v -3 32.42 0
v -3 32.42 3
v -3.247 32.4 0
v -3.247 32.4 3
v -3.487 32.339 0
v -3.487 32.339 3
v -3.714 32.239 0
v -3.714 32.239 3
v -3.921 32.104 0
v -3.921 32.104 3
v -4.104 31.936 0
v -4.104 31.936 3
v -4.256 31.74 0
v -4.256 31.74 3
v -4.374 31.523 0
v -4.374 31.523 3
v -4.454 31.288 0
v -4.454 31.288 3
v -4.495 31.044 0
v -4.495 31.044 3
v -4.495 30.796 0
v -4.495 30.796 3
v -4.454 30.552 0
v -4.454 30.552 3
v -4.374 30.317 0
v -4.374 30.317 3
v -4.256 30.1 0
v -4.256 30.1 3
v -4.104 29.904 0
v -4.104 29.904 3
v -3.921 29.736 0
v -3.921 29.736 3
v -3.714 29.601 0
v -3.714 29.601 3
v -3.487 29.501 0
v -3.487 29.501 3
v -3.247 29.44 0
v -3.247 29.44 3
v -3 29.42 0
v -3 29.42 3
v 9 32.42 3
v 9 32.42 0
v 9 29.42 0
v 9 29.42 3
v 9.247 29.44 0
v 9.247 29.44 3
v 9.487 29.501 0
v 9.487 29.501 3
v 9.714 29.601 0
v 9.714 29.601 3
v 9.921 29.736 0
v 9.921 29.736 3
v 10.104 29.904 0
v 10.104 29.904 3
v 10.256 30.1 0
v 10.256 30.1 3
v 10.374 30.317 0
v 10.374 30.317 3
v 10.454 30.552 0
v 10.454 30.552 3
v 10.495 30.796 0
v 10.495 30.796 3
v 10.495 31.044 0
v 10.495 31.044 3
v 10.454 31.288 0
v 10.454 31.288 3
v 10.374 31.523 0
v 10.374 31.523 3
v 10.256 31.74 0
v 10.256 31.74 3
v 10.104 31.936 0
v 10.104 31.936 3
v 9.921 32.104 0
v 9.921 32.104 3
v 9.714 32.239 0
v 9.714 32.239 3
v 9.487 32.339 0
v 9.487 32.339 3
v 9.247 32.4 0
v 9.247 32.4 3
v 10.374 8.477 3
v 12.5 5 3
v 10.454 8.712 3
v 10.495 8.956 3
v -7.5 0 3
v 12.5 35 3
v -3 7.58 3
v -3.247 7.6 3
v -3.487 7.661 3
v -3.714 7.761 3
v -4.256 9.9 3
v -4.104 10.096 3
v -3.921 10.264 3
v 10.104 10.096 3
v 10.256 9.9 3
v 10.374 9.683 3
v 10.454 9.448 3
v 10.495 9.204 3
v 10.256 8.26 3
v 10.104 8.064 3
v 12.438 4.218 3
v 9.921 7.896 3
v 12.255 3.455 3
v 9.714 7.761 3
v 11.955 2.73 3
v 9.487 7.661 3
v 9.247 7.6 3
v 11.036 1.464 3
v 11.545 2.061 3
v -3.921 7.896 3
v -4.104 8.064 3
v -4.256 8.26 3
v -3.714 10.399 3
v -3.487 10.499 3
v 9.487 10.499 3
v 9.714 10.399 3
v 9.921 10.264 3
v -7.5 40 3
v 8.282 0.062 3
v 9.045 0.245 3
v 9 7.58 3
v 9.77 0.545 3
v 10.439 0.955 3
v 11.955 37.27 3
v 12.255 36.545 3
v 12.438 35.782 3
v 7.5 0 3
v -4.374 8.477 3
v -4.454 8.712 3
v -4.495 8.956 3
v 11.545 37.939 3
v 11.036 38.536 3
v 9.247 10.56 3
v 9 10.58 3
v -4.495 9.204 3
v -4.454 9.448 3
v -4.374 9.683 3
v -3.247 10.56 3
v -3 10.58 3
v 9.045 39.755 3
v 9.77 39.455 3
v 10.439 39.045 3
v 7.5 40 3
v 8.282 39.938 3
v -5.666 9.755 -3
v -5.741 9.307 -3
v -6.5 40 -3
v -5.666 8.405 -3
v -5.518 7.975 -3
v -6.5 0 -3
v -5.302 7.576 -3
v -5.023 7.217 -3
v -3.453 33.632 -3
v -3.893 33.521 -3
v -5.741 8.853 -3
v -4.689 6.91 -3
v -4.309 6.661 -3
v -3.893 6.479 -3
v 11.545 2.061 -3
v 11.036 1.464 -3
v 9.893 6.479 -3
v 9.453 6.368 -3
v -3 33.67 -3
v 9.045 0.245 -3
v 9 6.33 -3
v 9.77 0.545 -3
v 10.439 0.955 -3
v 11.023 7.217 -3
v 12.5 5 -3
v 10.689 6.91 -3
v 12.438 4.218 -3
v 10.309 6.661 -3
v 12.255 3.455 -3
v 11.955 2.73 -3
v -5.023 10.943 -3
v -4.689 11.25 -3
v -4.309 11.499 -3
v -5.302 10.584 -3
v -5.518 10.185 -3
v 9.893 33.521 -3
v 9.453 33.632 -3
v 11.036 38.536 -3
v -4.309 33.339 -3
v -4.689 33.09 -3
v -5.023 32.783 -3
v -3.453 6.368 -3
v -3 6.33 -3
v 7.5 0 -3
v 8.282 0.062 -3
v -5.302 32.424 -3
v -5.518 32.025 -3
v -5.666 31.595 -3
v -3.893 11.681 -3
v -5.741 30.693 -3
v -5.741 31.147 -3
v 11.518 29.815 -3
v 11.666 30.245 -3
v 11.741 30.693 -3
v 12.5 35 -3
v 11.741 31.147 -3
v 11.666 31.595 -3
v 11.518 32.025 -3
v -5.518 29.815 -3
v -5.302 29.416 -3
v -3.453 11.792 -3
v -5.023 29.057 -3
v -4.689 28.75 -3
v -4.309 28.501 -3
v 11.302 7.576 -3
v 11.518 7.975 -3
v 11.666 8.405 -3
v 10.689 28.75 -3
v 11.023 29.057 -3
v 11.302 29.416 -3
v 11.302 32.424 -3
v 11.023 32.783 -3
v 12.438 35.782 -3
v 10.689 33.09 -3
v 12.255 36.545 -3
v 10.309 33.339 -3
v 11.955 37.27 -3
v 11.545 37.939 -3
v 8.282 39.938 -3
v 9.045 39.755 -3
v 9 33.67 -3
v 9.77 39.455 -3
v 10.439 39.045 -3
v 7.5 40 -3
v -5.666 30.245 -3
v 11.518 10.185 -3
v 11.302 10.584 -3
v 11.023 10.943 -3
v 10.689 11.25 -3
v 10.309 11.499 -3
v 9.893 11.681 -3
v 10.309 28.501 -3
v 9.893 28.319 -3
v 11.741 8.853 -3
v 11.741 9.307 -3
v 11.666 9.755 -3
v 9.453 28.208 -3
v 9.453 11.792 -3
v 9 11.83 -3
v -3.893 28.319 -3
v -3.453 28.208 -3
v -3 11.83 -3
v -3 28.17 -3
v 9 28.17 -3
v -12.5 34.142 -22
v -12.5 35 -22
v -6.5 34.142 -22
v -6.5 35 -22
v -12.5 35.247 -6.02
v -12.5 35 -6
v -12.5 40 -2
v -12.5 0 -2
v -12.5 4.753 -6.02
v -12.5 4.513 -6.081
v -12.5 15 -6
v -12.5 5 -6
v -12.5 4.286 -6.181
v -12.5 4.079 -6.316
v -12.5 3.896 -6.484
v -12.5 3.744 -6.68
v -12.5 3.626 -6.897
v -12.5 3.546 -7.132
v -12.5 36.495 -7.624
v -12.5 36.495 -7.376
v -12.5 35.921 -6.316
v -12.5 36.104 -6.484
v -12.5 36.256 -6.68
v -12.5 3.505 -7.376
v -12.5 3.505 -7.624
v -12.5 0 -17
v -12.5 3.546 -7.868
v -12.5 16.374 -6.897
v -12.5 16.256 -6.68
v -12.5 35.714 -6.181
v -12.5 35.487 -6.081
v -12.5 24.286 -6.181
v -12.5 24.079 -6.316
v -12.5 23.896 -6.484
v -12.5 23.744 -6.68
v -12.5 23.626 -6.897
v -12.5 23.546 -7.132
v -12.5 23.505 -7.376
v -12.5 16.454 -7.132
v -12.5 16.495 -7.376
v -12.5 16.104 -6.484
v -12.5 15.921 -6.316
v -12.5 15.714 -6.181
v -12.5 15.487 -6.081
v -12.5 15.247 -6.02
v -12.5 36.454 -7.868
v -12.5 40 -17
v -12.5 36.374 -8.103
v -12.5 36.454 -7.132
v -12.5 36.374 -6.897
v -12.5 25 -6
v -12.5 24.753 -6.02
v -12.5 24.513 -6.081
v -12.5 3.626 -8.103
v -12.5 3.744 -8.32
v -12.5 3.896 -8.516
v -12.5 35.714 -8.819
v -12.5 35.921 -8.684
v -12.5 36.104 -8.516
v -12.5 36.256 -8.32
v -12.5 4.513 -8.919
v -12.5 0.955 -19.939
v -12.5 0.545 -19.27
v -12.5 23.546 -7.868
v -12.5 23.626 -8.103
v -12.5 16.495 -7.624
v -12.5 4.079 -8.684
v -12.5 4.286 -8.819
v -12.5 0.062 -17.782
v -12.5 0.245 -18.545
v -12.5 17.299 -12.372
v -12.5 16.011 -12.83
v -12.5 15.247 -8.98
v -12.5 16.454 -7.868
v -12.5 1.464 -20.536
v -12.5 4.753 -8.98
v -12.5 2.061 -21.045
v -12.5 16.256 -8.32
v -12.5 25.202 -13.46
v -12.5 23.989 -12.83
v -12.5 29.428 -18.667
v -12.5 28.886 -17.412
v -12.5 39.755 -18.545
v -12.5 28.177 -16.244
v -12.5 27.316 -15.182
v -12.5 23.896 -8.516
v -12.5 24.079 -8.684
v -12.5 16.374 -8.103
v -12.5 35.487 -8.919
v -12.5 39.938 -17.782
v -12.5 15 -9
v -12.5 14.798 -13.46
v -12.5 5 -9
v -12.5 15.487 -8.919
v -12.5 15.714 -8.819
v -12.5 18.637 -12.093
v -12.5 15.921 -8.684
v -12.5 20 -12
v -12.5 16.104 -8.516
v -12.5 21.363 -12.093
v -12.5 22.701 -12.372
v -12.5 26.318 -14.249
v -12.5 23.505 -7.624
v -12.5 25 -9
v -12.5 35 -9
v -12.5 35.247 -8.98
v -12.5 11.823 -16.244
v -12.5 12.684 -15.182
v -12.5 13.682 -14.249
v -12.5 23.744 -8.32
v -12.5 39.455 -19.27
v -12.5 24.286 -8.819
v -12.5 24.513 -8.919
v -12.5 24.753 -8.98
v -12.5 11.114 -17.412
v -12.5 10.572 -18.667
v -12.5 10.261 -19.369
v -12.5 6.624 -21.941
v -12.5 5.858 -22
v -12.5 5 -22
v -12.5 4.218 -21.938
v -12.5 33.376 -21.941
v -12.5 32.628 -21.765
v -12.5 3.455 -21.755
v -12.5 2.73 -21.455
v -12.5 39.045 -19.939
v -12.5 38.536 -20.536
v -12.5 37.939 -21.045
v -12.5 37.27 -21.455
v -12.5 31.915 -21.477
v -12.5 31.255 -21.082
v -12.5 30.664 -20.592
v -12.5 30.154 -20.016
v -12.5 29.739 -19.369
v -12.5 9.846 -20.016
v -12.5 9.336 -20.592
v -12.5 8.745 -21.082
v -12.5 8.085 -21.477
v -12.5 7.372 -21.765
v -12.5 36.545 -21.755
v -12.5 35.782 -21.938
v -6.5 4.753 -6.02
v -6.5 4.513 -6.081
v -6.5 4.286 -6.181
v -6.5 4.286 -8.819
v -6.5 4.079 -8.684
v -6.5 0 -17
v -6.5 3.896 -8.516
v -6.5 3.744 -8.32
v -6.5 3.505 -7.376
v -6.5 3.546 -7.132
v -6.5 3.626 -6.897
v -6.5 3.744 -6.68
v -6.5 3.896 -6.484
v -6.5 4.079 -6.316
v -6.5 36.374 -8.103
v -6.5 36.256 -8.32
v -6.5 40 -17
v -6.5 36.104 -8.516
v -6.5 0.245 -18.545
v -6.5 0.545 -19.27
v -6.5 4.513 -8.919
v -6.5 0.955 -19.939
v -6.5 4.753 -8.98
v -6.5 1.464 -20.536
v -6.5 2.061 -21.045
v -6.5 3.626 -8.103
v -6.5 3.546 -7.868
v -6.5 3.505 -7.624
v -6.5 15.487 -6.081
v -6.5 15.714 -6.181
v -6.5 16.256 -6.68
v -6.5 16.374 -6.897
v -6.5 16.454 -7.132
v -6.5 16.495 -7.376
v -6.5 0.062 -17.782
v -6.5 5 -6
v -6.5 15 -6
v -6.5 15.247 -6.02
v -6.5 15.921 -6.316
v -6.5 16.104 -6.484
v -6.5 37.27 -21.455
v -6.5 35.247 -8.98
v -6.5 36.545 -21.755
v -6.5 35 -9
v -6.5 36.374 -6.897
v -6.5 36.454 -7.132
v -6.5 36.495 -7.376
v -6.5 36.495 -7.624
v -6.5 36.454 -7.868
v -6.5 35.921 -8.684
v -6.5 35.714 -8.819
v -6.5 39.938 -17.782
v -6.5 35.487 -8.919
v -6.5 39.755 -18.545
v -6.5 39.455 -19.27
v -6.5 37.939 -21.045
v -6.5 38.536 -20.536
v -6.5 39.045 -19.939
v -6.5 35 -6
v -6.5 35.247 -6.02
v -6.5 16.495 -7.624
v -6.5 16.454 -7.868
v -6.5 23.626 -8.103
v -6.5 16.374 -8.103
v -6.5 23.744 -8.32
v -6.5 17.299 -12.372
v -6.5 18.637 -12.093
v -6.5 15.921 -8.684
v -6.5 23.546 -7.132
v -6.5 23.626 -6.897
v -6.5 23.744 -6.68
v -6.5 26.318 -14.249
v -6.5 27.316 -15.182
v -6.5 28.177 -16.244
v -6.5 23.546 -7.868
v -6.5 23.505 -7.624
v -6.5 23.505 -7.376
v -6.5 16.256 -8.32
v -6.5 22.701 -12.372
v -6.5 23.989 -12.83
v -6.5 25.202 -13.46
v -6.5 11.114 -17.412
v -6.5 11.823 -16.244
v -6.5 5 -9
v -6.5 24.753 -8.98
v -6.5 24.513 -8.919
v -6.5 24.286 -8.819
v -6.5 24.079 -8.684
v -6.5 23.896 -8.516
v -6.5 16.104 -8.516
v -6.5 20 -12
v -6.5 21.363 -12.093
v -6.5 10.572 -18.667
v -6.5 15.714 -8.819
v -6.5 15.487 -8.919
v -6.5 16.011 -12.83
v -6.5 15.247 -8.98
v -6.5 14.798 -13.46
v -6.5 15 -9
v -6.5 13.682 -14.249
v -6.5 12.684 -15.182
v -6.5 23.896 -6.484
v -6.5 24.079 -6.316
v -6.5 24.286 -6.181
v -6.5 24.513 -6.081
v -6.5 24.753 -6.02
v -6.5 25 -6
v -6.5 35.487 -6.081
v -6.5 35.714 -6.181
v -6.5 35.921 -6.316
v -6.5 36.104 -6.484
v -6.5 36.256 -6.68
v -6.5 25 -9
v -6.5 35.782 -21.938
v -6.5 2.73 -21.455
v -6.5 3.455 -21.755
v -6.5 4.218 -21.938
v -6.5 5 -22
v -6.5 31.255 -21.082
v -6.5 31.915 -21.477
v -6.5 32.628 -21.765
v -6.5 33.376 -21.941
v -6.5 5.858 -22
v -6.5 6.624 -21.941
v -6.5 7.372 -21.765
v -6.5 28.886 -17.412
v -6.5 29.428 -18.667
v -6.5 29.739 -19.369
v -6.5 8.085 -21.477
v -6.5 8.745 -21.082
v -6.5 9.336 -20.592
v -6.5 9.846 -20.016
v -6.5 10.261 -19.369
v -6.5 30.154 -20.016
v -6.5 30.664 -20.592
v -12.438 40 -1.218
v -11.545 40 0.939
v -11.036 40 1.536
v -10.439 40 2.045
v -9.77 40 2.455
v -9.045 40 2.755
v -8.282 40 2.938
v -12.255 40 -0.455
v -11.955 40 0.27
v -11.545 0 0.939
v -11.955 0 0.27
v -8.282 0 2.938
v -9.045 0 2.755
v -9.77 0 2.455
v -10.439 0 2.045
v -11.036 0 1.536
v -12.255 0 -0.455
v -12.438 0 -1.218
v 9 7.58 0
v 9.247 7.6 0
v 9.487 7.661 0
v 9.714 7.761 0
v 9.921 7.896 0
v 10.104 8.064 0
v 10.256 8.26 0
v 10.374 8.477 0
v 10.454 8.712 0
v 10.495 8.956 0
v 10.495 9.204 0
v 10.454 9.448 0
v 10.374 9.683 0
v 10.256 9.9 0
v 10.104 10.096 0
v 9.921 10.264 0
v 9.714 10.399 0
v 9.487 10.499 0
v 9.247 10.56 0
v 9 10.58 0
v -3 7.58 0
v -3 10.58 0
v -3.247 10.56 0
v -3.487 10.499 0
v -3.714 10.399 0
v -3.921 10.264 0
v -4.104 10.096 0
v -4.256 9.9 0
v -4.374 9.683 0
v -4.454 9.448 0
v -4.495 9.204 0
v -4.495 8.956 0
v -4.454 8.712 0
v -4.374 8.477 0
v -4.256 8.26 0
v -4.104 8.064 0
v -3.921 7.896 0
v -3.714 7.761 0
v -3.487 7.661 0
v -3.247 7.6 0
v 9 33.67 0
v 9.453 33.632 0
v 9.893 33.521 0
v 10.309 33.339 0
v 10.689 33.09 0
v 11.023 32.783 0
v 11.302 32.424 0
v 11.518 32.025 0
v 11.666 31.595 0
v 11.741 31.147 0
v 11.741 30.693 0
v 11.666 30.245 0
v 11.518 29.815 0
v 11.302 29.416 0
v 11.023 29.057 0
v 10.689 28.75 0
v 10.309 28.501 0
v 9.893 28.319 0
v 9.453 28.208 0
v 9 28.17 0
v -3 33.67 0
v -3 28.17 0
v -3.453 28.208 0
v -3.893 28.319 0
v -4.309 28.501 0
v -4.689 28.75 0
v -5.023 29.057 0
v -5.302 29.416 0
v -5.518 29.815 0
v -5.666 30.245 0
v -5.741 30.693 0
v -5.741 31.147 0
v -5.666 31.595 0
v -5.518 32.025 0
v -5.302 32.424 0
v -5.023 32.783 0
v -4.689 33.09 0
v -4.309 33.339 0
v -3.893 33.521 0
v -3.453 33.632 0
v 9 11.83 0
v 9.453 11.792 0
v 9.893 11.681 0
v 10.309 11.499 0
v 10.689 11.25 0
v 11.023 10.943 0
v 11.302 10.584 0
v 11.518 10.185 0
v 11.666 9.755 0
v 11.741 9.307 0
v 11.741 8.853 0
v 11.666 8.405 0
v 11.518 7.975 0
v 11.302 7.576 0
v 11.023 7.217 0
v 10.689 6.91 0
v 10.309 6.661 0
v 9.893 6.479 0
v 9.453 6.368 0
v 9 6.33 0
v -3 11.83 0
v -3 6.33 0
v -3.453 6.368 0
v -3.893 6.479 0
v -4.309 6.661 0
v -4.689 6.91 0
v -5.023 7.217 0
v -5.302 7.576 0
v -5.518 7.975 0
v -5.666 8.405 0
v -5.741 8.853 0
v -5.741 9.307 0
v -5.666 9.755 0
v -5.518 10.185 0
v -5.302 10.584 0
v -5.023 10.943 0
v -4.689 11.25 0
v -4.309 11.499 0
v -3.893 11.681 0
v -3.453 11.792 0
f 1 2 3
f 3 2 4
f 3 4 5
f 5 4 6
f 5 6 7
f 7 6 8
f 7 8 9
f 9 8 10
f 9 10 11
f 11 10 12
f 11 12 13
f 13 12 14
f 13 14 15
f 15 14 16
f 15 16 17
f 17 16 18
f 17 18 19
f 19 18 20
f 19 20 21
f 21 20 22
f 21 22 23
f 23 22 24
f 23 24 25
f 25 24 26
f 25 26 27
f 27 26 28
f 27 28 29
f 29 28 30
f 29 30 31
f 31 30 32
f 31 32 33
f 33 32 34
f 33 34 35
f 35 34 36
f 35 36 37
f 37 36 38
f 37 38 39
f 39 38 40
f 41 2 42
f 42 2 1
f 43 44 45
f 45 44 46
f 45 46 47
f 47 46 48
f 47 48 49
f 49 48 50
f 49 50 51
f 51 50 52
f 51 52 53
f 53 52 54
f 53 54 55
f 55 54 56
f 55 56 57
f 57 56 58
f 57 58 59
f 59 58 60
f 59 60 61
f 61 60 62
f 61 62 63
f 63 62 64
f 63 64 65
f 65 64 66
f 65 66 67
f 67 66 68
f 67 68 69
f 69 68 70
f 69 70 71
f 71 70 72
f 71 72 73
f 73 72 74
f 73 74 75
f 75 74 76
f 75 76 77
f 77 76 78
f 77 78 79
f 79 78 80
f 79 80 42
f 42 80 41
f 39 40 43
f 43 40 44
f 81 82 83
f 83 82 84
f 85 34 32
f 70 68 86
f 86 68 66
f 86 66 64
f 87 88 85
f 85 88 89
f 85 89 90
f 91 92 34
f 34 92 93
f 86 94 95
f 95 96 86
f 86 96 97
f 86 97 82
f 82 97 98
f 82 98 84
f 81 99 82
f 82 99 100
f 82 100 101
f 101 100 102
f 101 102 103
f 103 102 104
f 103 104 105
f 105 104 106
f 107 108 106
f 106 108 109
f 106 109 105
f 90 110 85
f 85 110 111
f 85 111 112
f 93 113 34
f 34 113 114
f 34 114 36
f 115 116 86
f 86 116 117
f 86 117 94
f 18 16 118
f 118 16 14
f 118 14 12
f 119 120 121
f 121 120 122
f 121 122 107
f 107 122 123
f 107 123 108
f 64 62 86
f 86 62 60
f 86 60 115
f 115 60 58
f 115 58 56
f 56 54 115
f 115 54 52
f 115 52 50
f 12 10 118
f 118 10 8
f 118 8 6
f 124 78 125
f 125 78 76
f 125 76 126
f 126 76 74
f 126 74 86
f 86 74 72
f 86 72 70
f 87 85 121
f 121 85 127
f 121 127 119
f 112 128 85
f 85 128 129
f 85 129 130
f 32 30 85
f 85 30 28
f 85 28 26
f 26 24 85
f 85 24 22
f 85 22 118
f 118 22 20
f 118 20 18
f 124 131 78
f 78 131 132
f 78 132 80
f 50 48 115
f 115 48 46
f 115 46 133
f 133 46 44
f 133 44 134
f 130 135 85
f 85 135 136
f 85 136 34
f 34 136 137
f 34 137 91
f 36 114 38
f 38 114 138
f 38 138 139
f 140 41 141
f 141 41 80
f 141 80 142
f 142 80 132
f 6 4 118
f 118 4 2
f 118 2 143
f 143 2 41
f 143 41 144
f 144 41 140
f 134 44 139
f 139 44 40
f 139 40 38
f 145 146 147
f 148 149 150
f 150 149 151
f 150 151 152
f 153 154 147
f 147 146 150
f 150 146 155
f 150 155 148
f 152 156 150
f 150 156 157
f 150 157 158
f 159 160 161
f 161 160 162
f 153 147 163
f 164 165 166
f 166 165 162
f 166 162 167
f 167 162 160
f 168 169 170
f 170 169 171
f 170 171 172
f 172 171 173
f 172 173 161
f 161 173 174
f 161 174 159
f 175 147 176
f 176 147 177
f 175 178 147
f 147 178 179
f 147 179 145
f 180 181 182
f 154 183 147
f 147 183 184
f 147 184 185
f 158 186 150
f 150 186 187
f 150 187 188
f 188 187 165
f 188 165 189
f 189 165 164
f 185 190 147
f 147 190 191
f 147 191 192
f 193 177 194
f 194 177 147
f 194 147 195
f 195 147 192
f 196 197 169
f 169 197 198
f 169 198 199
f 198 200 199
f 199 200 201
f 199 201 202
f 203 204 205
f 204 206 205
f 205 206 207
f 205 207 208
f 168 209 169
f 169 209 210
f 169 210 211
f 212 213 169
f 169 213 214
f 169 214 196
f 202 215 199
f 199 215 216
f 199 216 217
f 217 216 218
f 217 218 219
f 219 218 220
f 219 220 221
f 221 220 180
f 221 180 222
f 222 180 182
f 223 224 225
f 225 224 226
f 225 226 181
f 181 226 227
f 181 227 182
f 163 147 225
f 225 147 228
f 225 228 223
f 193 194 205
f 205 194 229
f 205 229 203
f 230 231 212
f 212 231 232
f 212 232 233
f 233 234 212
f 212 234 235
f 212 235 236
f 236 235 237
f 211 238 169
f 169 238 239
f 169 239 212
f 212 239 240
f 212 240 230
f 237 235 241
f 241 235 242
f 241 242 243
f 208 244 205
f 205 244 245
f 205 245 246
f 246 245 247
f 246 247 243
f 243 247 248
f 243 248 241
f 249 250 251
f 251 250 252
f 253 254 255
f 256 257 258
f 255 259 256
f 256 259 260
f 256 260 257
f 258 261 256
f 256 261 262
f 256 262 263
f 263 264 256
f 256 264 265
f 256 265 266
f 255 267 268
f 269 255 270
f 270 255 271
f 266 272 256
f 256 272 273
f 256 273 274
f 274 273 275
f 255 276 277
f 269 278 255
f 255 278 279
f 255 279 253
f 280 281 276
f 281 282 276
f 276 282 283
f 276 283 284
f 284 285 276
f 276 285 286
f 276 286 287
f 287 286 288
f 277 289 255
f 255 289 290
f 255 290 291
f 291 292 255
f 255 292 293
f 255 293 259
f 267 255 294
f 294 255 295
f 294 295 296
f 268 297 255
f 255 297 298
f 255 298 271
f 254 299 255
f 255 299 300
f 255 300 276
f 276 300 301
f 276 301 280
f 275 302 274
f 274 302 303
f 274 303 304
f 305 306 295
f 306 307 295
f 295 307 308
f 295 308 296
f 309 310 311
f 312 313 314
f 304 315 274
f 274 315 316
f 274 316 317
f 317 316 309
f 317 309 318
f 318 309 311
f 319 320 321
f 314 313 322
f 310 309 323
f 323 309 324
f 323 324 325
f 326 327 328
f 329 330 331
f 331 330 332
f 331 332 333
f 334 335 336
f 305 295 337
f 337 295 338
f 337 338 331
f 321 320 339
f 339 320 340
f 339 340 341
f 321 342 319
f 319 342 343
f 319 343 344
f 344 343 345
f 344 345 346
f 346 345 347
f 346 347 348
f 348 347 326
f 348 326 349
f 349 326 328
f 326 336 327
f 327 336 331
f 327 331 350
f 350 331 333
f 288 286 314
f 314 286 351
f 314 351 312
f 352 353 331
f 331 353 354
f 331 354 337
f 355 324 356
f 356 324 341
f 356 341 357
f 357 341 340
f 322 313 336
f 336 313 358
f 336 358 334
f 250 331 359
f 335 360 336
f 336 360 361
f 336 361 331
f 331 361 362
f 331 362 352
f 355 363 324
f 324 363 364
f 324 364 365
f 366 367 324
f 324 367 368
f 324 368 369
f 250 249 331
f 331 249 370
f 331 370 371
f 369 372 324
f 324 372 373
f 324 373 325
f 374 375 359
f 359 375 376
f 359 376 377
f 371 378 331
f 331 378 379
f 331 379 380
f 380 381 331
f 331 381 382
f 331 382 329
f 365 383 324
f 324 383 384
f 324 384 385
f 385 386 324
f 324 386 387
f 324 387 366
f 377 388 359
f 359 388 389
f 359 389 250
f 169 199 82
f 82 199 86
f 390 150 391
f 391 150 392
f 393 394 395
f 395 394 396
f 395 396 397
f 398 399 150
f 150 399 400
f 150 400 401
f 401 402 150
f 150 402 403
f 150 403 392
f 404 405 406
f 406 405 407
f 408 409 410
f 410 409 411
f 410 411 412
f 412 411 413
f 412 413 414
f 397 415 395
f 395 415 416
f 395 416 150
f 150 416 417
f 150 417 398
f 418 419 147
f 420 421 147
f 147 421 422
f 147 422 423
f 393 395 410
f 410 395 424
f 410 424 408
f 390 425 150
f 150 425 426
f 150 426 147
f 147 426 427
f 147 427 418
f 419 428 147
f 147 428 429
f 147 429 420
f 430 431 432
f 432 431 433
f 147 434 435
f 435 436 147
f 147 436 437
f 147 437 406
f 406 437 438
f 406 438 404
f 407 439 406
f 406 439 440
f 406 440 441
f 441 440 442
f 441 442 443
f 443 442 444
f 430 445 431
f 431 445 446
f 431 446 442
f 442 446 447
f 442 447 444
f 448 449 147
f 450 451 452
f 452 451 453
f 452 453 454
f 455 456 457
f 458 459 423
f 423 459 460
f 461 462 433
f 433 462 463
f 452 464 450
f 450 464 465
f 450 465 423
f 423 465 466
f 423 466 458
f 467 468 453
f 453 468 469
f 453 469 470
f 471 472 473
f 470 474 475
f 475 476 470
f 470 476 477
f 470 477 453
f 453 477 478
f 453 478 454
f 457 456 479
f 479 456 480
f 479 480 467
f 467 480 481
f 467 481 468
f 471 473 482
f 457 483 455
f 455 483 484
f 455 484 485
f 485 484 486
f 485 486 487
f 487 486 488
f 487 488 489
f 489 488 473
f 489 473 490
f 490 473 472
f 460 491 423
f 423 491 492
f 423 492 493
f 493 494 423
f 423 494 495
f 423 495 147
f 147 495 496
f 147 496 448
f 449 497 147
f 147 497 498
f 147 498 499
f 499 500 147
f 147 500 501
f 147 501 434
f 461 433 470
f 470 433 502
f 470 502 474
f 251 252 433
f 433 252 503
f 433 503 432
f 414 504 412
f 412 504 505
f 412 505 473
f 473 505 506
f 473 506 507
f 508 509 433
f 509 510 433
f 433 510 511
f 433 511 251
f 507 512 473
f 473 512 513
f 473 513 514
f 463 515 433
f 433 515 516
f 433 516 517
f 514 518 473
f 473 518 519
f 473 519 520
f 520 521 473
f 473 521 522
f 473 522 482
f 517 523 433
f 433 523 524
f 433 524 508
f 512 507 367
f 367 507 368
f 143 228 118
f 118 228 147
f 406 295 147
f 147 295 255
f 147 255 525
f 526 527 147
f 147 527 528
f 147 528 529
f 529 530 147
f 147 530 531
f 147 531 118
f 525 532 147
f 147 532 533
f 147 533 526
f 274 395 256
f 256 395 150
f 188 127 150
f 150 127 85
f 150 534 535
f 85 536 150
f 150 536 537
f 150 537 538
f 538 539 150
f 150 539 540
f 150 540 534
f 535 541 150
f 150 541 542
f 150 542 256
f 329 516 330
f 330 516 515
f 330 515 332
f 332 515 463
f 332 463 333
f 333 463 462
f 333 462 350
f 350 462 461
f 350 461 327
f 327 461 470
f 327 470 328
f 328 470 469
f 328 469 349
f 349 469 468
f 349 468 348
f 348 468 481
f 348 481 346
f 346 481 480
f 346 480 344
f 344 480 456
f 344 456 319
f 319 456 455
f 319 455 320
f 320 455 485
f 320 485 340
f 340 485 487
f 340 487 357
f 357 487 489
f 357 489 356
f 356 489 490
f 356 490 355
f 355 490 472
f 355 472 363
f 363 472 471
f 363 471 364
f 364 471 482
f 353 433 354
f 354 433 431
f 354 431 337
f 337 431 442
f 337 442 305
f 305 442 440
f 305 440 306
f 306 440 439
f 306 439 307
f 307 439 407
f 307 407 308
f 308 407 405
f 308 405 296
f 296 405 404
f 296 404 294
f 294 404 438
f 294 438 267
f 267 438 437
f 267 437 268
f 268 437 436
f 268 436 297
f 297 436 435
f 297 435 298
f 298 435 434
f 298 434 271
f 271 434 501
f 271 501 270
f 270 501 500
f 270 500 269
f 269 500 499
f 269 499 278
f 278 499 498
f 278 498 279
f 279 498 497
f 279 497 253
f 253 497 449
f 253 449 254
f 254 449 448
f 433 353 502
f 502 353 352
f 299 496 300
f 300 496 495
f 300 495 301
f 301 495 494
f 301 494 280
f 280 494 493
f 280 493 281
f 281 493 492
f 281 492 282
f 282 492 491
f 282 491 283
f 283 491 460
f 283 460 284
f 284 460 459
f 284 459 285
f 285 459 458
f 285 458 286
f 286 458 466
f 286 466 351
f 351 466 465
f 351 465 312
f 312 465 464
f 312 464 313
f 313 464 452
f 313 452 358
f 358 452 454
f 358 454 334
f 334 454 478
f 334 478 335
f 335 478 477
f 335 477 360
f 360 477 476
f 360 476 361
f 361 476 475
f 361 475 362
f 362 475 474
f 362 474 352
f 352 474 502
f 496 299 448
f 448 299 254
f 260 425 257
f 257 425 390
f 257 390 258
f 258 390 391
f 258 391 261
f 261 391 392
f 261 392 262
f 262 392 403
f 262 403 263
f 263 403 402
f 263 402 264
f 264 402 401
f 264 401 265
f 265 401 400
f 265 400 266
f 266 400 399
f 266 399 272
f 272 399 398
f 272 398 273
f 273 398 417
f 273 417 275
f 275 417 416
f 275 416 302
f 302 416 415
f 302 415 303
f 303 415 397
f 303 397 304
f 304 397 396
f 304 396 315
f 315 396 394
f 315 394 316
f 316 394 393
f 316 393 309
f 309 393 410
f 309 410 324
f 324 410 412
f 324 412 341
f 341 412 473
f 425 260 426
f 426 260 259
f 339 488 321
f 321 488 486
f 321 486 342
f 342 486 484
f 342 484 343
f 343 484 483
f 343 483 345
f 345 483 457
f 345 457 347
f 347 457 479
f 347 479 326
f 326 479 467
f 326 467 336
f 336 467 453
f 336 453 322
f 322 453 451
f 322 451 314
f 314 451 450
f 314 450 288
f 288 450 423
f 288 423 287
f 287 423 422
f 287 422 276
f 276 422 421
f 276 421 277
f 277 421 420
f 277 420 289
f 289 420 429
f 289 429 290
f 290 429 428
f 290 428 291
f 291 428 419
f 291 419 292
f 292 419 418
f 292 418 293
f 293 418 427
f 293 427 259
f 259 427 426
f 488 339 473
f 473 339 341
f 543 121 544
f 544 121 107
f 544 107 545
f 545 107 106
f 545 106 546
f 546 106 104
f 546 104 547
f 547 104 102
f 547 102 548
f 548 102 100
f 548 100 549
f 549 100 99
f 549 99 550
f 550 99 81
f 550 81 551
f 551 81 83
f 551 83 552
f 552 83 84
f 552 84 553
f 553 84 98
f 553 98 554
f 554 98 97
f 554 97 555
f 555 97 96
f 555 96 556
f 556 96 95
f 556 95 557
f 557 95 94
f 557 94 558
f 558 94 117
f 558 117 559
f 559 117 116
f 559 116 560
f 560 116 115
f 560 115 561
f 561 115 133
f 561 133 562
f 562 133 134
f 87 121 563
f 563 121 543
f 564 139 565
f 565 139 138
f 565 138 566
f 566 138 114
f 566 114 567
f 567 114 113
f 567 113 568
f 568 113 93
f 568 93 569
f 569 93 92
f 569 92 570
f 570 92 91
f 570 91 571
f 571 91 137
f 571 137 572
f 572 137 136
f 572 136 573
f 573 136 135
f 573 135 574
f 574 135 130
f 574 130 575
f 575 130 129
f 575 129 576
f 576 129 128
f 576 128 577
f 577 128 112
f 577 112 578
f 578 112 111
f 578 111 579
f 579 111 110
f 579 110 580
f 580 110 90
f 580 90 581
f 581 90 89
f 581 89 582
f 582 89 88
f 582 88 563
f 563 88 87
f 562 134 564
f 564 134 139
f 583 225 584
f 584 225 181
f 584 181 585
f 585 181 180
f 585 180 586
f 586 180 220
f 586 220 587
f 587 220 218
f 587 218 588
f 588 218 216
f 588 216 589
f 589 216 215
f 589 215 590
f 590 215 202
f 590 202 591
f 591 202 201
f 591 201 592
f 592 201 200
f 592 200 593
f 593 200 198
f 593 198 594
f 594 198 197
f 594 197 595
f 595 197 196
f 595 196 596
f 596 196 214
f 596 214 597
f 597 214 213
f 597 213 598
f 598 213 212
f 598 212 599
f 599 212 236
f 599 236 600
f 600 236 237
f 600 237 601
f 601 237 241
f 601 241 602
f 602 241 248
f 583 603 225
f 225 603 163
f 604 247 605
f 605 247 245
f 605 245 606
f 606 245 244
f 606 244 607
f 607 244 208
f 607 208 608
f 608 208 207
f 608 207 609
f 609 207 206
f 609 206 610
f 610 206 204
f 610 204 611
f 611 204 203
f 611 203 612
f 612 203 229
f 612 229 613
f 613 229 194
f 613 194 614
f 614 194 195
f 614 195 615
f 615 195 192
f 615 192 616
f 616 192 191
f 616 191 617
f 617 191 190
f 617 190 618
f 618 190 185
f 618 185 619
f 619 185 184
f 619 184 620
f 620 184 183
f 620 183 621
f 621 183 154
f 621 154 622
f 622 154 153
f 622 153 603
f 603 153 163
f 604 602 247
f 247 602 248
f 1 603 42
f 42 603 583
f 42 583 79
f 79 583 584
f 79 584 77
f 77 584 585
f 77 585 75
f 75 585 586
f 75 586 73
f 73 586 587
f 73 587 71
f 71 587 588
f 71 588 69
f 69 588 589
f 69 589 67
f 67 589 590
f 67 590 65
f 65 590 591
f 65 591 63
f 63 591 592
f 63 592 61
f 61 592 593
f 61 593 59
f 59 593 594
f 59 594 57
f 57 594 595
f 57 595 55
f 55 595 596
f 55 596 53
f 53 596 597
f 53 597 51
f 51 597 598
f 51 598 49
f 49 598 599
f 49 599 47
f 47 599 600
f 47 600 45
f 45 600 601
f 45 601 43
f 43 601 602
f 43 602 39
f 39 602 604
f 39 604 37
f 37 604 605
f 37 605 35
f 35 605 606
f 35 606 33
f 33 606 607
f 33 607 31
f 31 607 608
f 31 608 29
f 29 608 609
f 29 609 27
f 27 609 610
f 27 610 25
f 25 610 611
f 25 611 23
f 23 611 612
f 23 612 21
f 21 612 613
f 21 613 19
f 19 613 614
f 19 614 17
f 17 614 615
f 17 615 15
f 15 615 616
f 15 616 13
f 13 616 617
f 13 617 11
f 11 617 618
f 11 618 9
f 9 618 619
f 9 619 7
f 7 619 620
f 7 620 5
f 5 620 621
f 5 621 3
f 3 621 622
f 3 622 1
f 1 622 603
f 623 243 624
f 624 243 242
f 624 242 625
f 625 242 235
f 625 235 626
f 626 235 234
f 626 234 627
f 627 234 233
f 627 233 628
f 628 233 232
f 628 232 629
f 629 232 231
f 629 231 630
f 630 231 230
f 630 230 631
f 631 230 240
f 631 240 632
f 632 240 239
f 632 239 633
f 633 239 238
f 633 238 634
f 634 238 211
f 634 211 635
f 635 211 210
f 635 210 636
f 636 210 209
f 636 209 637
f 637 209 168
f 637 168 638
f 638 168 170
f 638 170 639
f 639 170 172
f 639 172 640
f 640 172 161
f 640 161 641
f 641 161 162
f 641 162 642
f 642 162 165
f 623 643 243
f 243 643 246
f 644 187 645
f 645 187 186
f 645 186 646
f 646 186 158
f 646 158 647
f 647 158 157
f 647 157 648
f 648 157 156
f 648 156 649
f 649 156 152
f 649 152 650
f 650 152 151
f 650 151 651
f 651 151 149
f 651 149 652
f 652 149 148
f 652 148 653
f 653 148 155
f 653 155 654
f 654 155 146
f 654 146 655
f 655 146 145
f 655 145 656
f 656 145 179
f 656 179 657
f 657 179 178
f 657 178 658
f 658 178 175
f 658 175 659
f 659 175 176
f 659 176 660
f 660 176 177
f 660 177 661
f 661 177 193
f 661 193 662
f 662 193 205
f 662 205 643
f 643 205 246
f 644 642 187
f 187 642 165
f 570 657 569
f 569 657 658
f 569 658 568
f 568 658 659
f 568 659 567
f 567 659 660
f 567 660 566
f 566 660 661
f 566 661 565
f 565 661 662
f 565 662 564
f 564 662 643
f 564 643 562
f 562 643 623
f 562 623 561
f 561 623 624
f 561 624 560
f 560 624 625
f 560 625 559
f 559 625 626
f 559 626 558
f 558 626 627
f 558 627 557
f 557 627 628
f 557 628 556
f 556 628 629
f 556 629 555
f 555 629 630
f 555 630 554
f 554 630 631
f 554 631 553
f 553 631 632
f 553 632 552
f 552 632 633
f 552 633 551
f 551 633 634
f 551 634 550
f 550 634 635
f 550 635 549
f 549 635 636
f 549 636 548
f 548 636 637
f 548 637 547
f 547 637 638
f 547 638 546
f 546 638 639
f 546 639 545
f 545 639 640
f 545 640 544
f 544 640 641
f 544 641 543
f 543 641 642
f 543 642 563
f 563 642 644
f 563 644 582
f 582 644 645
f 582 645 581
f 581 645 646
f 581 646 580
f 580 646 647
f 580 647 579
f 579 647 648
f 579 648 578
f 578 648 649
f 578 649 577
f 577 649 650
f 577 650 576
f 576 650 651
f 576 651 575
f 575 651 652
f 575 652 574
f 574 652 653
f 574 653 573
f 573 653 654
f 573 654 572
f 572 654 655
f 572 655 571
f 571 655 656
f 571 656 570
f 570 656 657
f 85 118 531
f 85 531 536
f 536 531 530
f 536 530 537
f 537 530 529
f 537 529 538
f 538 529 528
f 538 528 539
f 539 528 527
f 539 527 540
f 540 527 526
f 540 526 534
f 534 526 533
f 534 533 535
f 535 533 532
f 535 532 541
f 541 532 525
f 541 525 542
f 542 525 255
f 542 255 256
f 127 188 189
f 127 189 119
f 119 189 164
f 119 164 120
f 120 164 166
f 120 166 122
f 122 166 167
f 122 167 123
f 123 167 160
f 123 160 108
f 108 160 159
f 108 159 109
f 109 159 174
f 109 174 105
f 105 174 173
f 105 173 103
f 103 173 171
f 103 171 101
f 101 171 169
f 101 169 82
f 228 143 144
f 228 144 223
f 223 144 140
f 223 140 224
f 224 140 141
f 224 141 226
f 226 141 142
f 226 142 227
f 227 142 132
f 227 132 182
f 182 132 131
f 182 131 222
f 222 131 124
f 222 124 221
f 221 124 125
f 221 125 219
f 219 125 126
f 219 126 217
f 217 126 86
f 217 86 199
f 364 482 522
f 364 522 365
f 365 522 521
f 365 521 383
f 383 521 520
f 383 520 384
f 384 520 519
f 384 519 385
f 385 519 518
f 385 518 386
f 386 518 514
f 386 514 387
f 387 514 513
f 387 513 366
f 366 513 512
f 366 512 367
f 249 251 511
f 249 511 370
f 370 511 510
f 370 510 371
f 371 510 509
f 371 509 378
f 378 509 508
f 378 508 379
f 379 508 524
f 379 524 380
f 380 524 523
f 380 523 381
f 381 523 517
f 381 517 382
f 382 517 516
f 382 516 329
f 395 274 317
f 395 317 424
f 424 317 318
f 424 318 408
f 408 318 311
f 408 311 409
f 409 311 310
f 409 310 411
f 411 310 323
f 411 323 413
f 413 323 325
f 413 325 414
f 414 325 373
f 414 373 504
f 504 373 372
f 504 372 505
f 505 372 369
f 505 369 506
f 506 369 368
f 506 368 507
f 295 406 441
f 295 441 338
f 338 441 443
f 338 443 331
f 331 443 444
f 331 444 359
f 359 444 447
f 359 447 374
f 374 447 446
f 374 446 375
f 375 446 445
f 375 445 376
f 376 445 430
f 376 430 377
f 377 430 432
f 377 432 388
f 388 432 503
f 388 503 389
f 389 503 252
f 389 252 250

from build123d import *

# Parameters (mm, degrees)
SKETCH1_W           = 6
SKETCH1_H           = 19
SKETCH1_H_2         = 6
SKETCH1_W_2         = 19
BOSS_EXTRUDE1_DEPTH = 40
CUT_EXTRUDE1_REACH  = 8
SKETCH2_R           = 10
CUT_EXTRUDE2_REACH  = 27
CUT_EXTRUDE3_DEPTH  = 3
FILLET1_R           = 5


with BuildPart() as part:
    # Sketch1 → Boss-Extrude1 (new body)
    with BuildSketch(Plane(origin=(0, 0, 0), x_dir=(1, 0, 0), z_dir=(0, 1, 0))):
        with Locations((-9.5, 12.5)):
            Rectangle(SKETCH1_W, SKETCH1_H)
        with Locations((-9.5, 0)):
            Rectangle(SKETCH1_W, SKETCH1_H_2)
        with Locations((3, 0)):
            Rectangle(SKETCH1_W_2, SKETCH1_H_2)
    extrude(amount=BOSS_EXTRUDE1_DEPTH)

    # Sketch2 → Cut-Extrude1 (cut, up to next)
    with BuildSketch(Plane(origin=(-6.5, 0, 0), x_dir=(0, 0, -1), z_dir=(1, 0, 0)), mode=Mode.PRIVATE) as cut_extrude1_sk1:
        with Locations((22, 20)):
            Circle(SKETCH2_R)
    cut_extrude1_tool1 = extrude(cut_extrude1_sk1.sketch, amount=-CUT_EXTRUDE1_REACH, mode=Mode.PRIVATE) & part.part
    add(cut_extrude1_tool1.solids().sort_by_distance((-6.5, 20, -22))[0], mode=Mode.SUBTRACT)
    # Sketch2 → Cut-Extrude1 (cut, up to next)
    with BuildSketch(Plane(origin=(-6.5, 0, 0), x_dir=(0, 0, -1), z_dir=(1, 0, 0)), mode=Mode.PRIVATE) as cut_extrude1_sk2:
        with BuildLine():
            Line((9, 35), (9, 25))
            ThreePointArc((9, 25), (7.5, 23.5), (6, 25))
            Line((6, 25), (6, 35))
            ThreePointArc((6, 35), (7.5, 36.5), (9, 35))
        make_face()
    cut_extrude1_tool2 = extrude(cut_extrude1_sk2.sketch, amount=-CUT_EXTRUDE1_REACH, mode=Mode.PRIVATE) & part.part
    add(cut_extrude1_tool2.solids().sort_by_distance((-6.5, 30, -7.5))[0], mode=Mode.SUBTRACT)
    # Sketch2 → Cut-Extrude1 (cut, up to next)
    with BuildSketch(Plane(origin=(-6.5, 0, 0), x_dir=(0, 0, -1), z_dir=(1, 0, 0)), mode=Mode.PRIVATE) as cut_extrude1_sk3:
        with BuildLine():
            Line((9, 5), (9, 15))
            ThreePointArc((9, 15), (7.5, 16.5), (6, 15))
            Line((6, 15), (6, 5))
            ThreePointArc((6, 5), (7.5, 3.5), (9, 5))
        make_face()
    cut_extrude1_tool3 = extrude(cut_extrude1_sk3.sketch, amount=-CUT_EXTRUDE1_REACH, mode=Mode.PRIVATE) & part.part
    add(cut_extrude1_tool3.solids().sort_by_distance((-6.5, 10, -7.5))[0], mode=Mode.SUBTRACT)

    # Sketch3 → Cut-Extrude2 (cut, up to next)
    with BuildSketch(Plane(origin=(0, 0, 3), x_dir=(-1, 0, 0), z_dir=(0, 0, -1)), mode=Mode.PRIVATE) as cut_extrude2_sk1:
        with BuildLine():
            Line((-9, 32.42), (3, 32.42))
            ThreePointArc((3, 32.42), (4.5, 30.92), (3, 29.42))
            Line((3, 29.42), (-9, 29.42))
            ThreePointArc((-9, 29.42), (-10.5, 30.92), (-9, 32.42))
        make_face()
    cut_extrude2_tool1 = extrude(cut_extrude2_sk1.sketch, amount=CUT_EXTRUDE2_REACH, mode=Mode.PRIVATE) & part.part
    add(cut_extrude2_tool1.solids().sort_by_distance((3, 30.92, 3))[0], mode=Mode.SUBTRACT)
    # Sketch3 → Cut-Extrude2 (cut, up to next)
    with BuildSketch(Plane(origin=(0, 0, 3), x_dir=(-1, 0, 0), z_dir=(0, 0, -1)), mode=Mode.PRIVATE) as cut_extrude2_sk2:
        with BuildLine():
            Line((-9, 10.58), (3, 10.58))
            ThreePointArc((3, 10.58), (4.5, 9.08), (3, 7.58))
            Line((3, 7.58), (-9, 7.58))
            ThreePointArc((-9, 7.58), (-10.5, 9.08), (-9, 10.58))
        make_face()
    cut_extrude2_tool2 = extrude(cut_extrude2_sk2.sketch, amount=CUT_EXTRUDE2_REACH, mode=Mode.PRIVATE) & part.part
    add(cut_extrude2_tool2.solids().sort_by_distance((3, 9.08, 3))[0], mode=Mode.SUBTRACT)

    # Sketch4 → Cut-Extrude3 (cut)
    with BuildSketch(Plane(origin=(0, 0, -3), x_dir=(-1, 0, 0), z_dir=(0, 0, -1))):
        with BuildLine():
            Line((-9, 6.33), (3, 6.33))
            ThreePointArc((3, 6.33), (5.75, 9.08), (3, 11.83))
            Line((3, 11.83), (-9, 11.83))
            ThreePointArc((-9, 11.83), (-11.75, 9.08), (-9, 6.33))
        make_face()
        with BuildLine():
            Line((-9, 33.67), (3, 33.67))
            ThreePointArc((3, 33.67), (5.75, 30.92), (3, 28.17))
            Line((3, 28.17), (-9, 28.17))
            ThreePointArc((-9, 28.17), (-11.75, 30.92), (-9, 33.67))
        make_face()
    extrude(amount=-CUT_EXTRUDE3_DEPTH, mode=Mode.SUBTRACT)

    # Fillet1
    fillet1_edges = [part.edges().sort_by_distance(p)[0] for p in [
        (-12.5, 20, 3),
        (12.5, 40, 0),
        (-9.5, 40, -22),
        (-9.5, 30, -22),
        (-9.5, 10, -22),
        (-9.5, 0, -22),
        (12.5, 0, 0),
    ]]
    fillet(fillet1_edges, radius=FILLET1_R)


solid = part.part
